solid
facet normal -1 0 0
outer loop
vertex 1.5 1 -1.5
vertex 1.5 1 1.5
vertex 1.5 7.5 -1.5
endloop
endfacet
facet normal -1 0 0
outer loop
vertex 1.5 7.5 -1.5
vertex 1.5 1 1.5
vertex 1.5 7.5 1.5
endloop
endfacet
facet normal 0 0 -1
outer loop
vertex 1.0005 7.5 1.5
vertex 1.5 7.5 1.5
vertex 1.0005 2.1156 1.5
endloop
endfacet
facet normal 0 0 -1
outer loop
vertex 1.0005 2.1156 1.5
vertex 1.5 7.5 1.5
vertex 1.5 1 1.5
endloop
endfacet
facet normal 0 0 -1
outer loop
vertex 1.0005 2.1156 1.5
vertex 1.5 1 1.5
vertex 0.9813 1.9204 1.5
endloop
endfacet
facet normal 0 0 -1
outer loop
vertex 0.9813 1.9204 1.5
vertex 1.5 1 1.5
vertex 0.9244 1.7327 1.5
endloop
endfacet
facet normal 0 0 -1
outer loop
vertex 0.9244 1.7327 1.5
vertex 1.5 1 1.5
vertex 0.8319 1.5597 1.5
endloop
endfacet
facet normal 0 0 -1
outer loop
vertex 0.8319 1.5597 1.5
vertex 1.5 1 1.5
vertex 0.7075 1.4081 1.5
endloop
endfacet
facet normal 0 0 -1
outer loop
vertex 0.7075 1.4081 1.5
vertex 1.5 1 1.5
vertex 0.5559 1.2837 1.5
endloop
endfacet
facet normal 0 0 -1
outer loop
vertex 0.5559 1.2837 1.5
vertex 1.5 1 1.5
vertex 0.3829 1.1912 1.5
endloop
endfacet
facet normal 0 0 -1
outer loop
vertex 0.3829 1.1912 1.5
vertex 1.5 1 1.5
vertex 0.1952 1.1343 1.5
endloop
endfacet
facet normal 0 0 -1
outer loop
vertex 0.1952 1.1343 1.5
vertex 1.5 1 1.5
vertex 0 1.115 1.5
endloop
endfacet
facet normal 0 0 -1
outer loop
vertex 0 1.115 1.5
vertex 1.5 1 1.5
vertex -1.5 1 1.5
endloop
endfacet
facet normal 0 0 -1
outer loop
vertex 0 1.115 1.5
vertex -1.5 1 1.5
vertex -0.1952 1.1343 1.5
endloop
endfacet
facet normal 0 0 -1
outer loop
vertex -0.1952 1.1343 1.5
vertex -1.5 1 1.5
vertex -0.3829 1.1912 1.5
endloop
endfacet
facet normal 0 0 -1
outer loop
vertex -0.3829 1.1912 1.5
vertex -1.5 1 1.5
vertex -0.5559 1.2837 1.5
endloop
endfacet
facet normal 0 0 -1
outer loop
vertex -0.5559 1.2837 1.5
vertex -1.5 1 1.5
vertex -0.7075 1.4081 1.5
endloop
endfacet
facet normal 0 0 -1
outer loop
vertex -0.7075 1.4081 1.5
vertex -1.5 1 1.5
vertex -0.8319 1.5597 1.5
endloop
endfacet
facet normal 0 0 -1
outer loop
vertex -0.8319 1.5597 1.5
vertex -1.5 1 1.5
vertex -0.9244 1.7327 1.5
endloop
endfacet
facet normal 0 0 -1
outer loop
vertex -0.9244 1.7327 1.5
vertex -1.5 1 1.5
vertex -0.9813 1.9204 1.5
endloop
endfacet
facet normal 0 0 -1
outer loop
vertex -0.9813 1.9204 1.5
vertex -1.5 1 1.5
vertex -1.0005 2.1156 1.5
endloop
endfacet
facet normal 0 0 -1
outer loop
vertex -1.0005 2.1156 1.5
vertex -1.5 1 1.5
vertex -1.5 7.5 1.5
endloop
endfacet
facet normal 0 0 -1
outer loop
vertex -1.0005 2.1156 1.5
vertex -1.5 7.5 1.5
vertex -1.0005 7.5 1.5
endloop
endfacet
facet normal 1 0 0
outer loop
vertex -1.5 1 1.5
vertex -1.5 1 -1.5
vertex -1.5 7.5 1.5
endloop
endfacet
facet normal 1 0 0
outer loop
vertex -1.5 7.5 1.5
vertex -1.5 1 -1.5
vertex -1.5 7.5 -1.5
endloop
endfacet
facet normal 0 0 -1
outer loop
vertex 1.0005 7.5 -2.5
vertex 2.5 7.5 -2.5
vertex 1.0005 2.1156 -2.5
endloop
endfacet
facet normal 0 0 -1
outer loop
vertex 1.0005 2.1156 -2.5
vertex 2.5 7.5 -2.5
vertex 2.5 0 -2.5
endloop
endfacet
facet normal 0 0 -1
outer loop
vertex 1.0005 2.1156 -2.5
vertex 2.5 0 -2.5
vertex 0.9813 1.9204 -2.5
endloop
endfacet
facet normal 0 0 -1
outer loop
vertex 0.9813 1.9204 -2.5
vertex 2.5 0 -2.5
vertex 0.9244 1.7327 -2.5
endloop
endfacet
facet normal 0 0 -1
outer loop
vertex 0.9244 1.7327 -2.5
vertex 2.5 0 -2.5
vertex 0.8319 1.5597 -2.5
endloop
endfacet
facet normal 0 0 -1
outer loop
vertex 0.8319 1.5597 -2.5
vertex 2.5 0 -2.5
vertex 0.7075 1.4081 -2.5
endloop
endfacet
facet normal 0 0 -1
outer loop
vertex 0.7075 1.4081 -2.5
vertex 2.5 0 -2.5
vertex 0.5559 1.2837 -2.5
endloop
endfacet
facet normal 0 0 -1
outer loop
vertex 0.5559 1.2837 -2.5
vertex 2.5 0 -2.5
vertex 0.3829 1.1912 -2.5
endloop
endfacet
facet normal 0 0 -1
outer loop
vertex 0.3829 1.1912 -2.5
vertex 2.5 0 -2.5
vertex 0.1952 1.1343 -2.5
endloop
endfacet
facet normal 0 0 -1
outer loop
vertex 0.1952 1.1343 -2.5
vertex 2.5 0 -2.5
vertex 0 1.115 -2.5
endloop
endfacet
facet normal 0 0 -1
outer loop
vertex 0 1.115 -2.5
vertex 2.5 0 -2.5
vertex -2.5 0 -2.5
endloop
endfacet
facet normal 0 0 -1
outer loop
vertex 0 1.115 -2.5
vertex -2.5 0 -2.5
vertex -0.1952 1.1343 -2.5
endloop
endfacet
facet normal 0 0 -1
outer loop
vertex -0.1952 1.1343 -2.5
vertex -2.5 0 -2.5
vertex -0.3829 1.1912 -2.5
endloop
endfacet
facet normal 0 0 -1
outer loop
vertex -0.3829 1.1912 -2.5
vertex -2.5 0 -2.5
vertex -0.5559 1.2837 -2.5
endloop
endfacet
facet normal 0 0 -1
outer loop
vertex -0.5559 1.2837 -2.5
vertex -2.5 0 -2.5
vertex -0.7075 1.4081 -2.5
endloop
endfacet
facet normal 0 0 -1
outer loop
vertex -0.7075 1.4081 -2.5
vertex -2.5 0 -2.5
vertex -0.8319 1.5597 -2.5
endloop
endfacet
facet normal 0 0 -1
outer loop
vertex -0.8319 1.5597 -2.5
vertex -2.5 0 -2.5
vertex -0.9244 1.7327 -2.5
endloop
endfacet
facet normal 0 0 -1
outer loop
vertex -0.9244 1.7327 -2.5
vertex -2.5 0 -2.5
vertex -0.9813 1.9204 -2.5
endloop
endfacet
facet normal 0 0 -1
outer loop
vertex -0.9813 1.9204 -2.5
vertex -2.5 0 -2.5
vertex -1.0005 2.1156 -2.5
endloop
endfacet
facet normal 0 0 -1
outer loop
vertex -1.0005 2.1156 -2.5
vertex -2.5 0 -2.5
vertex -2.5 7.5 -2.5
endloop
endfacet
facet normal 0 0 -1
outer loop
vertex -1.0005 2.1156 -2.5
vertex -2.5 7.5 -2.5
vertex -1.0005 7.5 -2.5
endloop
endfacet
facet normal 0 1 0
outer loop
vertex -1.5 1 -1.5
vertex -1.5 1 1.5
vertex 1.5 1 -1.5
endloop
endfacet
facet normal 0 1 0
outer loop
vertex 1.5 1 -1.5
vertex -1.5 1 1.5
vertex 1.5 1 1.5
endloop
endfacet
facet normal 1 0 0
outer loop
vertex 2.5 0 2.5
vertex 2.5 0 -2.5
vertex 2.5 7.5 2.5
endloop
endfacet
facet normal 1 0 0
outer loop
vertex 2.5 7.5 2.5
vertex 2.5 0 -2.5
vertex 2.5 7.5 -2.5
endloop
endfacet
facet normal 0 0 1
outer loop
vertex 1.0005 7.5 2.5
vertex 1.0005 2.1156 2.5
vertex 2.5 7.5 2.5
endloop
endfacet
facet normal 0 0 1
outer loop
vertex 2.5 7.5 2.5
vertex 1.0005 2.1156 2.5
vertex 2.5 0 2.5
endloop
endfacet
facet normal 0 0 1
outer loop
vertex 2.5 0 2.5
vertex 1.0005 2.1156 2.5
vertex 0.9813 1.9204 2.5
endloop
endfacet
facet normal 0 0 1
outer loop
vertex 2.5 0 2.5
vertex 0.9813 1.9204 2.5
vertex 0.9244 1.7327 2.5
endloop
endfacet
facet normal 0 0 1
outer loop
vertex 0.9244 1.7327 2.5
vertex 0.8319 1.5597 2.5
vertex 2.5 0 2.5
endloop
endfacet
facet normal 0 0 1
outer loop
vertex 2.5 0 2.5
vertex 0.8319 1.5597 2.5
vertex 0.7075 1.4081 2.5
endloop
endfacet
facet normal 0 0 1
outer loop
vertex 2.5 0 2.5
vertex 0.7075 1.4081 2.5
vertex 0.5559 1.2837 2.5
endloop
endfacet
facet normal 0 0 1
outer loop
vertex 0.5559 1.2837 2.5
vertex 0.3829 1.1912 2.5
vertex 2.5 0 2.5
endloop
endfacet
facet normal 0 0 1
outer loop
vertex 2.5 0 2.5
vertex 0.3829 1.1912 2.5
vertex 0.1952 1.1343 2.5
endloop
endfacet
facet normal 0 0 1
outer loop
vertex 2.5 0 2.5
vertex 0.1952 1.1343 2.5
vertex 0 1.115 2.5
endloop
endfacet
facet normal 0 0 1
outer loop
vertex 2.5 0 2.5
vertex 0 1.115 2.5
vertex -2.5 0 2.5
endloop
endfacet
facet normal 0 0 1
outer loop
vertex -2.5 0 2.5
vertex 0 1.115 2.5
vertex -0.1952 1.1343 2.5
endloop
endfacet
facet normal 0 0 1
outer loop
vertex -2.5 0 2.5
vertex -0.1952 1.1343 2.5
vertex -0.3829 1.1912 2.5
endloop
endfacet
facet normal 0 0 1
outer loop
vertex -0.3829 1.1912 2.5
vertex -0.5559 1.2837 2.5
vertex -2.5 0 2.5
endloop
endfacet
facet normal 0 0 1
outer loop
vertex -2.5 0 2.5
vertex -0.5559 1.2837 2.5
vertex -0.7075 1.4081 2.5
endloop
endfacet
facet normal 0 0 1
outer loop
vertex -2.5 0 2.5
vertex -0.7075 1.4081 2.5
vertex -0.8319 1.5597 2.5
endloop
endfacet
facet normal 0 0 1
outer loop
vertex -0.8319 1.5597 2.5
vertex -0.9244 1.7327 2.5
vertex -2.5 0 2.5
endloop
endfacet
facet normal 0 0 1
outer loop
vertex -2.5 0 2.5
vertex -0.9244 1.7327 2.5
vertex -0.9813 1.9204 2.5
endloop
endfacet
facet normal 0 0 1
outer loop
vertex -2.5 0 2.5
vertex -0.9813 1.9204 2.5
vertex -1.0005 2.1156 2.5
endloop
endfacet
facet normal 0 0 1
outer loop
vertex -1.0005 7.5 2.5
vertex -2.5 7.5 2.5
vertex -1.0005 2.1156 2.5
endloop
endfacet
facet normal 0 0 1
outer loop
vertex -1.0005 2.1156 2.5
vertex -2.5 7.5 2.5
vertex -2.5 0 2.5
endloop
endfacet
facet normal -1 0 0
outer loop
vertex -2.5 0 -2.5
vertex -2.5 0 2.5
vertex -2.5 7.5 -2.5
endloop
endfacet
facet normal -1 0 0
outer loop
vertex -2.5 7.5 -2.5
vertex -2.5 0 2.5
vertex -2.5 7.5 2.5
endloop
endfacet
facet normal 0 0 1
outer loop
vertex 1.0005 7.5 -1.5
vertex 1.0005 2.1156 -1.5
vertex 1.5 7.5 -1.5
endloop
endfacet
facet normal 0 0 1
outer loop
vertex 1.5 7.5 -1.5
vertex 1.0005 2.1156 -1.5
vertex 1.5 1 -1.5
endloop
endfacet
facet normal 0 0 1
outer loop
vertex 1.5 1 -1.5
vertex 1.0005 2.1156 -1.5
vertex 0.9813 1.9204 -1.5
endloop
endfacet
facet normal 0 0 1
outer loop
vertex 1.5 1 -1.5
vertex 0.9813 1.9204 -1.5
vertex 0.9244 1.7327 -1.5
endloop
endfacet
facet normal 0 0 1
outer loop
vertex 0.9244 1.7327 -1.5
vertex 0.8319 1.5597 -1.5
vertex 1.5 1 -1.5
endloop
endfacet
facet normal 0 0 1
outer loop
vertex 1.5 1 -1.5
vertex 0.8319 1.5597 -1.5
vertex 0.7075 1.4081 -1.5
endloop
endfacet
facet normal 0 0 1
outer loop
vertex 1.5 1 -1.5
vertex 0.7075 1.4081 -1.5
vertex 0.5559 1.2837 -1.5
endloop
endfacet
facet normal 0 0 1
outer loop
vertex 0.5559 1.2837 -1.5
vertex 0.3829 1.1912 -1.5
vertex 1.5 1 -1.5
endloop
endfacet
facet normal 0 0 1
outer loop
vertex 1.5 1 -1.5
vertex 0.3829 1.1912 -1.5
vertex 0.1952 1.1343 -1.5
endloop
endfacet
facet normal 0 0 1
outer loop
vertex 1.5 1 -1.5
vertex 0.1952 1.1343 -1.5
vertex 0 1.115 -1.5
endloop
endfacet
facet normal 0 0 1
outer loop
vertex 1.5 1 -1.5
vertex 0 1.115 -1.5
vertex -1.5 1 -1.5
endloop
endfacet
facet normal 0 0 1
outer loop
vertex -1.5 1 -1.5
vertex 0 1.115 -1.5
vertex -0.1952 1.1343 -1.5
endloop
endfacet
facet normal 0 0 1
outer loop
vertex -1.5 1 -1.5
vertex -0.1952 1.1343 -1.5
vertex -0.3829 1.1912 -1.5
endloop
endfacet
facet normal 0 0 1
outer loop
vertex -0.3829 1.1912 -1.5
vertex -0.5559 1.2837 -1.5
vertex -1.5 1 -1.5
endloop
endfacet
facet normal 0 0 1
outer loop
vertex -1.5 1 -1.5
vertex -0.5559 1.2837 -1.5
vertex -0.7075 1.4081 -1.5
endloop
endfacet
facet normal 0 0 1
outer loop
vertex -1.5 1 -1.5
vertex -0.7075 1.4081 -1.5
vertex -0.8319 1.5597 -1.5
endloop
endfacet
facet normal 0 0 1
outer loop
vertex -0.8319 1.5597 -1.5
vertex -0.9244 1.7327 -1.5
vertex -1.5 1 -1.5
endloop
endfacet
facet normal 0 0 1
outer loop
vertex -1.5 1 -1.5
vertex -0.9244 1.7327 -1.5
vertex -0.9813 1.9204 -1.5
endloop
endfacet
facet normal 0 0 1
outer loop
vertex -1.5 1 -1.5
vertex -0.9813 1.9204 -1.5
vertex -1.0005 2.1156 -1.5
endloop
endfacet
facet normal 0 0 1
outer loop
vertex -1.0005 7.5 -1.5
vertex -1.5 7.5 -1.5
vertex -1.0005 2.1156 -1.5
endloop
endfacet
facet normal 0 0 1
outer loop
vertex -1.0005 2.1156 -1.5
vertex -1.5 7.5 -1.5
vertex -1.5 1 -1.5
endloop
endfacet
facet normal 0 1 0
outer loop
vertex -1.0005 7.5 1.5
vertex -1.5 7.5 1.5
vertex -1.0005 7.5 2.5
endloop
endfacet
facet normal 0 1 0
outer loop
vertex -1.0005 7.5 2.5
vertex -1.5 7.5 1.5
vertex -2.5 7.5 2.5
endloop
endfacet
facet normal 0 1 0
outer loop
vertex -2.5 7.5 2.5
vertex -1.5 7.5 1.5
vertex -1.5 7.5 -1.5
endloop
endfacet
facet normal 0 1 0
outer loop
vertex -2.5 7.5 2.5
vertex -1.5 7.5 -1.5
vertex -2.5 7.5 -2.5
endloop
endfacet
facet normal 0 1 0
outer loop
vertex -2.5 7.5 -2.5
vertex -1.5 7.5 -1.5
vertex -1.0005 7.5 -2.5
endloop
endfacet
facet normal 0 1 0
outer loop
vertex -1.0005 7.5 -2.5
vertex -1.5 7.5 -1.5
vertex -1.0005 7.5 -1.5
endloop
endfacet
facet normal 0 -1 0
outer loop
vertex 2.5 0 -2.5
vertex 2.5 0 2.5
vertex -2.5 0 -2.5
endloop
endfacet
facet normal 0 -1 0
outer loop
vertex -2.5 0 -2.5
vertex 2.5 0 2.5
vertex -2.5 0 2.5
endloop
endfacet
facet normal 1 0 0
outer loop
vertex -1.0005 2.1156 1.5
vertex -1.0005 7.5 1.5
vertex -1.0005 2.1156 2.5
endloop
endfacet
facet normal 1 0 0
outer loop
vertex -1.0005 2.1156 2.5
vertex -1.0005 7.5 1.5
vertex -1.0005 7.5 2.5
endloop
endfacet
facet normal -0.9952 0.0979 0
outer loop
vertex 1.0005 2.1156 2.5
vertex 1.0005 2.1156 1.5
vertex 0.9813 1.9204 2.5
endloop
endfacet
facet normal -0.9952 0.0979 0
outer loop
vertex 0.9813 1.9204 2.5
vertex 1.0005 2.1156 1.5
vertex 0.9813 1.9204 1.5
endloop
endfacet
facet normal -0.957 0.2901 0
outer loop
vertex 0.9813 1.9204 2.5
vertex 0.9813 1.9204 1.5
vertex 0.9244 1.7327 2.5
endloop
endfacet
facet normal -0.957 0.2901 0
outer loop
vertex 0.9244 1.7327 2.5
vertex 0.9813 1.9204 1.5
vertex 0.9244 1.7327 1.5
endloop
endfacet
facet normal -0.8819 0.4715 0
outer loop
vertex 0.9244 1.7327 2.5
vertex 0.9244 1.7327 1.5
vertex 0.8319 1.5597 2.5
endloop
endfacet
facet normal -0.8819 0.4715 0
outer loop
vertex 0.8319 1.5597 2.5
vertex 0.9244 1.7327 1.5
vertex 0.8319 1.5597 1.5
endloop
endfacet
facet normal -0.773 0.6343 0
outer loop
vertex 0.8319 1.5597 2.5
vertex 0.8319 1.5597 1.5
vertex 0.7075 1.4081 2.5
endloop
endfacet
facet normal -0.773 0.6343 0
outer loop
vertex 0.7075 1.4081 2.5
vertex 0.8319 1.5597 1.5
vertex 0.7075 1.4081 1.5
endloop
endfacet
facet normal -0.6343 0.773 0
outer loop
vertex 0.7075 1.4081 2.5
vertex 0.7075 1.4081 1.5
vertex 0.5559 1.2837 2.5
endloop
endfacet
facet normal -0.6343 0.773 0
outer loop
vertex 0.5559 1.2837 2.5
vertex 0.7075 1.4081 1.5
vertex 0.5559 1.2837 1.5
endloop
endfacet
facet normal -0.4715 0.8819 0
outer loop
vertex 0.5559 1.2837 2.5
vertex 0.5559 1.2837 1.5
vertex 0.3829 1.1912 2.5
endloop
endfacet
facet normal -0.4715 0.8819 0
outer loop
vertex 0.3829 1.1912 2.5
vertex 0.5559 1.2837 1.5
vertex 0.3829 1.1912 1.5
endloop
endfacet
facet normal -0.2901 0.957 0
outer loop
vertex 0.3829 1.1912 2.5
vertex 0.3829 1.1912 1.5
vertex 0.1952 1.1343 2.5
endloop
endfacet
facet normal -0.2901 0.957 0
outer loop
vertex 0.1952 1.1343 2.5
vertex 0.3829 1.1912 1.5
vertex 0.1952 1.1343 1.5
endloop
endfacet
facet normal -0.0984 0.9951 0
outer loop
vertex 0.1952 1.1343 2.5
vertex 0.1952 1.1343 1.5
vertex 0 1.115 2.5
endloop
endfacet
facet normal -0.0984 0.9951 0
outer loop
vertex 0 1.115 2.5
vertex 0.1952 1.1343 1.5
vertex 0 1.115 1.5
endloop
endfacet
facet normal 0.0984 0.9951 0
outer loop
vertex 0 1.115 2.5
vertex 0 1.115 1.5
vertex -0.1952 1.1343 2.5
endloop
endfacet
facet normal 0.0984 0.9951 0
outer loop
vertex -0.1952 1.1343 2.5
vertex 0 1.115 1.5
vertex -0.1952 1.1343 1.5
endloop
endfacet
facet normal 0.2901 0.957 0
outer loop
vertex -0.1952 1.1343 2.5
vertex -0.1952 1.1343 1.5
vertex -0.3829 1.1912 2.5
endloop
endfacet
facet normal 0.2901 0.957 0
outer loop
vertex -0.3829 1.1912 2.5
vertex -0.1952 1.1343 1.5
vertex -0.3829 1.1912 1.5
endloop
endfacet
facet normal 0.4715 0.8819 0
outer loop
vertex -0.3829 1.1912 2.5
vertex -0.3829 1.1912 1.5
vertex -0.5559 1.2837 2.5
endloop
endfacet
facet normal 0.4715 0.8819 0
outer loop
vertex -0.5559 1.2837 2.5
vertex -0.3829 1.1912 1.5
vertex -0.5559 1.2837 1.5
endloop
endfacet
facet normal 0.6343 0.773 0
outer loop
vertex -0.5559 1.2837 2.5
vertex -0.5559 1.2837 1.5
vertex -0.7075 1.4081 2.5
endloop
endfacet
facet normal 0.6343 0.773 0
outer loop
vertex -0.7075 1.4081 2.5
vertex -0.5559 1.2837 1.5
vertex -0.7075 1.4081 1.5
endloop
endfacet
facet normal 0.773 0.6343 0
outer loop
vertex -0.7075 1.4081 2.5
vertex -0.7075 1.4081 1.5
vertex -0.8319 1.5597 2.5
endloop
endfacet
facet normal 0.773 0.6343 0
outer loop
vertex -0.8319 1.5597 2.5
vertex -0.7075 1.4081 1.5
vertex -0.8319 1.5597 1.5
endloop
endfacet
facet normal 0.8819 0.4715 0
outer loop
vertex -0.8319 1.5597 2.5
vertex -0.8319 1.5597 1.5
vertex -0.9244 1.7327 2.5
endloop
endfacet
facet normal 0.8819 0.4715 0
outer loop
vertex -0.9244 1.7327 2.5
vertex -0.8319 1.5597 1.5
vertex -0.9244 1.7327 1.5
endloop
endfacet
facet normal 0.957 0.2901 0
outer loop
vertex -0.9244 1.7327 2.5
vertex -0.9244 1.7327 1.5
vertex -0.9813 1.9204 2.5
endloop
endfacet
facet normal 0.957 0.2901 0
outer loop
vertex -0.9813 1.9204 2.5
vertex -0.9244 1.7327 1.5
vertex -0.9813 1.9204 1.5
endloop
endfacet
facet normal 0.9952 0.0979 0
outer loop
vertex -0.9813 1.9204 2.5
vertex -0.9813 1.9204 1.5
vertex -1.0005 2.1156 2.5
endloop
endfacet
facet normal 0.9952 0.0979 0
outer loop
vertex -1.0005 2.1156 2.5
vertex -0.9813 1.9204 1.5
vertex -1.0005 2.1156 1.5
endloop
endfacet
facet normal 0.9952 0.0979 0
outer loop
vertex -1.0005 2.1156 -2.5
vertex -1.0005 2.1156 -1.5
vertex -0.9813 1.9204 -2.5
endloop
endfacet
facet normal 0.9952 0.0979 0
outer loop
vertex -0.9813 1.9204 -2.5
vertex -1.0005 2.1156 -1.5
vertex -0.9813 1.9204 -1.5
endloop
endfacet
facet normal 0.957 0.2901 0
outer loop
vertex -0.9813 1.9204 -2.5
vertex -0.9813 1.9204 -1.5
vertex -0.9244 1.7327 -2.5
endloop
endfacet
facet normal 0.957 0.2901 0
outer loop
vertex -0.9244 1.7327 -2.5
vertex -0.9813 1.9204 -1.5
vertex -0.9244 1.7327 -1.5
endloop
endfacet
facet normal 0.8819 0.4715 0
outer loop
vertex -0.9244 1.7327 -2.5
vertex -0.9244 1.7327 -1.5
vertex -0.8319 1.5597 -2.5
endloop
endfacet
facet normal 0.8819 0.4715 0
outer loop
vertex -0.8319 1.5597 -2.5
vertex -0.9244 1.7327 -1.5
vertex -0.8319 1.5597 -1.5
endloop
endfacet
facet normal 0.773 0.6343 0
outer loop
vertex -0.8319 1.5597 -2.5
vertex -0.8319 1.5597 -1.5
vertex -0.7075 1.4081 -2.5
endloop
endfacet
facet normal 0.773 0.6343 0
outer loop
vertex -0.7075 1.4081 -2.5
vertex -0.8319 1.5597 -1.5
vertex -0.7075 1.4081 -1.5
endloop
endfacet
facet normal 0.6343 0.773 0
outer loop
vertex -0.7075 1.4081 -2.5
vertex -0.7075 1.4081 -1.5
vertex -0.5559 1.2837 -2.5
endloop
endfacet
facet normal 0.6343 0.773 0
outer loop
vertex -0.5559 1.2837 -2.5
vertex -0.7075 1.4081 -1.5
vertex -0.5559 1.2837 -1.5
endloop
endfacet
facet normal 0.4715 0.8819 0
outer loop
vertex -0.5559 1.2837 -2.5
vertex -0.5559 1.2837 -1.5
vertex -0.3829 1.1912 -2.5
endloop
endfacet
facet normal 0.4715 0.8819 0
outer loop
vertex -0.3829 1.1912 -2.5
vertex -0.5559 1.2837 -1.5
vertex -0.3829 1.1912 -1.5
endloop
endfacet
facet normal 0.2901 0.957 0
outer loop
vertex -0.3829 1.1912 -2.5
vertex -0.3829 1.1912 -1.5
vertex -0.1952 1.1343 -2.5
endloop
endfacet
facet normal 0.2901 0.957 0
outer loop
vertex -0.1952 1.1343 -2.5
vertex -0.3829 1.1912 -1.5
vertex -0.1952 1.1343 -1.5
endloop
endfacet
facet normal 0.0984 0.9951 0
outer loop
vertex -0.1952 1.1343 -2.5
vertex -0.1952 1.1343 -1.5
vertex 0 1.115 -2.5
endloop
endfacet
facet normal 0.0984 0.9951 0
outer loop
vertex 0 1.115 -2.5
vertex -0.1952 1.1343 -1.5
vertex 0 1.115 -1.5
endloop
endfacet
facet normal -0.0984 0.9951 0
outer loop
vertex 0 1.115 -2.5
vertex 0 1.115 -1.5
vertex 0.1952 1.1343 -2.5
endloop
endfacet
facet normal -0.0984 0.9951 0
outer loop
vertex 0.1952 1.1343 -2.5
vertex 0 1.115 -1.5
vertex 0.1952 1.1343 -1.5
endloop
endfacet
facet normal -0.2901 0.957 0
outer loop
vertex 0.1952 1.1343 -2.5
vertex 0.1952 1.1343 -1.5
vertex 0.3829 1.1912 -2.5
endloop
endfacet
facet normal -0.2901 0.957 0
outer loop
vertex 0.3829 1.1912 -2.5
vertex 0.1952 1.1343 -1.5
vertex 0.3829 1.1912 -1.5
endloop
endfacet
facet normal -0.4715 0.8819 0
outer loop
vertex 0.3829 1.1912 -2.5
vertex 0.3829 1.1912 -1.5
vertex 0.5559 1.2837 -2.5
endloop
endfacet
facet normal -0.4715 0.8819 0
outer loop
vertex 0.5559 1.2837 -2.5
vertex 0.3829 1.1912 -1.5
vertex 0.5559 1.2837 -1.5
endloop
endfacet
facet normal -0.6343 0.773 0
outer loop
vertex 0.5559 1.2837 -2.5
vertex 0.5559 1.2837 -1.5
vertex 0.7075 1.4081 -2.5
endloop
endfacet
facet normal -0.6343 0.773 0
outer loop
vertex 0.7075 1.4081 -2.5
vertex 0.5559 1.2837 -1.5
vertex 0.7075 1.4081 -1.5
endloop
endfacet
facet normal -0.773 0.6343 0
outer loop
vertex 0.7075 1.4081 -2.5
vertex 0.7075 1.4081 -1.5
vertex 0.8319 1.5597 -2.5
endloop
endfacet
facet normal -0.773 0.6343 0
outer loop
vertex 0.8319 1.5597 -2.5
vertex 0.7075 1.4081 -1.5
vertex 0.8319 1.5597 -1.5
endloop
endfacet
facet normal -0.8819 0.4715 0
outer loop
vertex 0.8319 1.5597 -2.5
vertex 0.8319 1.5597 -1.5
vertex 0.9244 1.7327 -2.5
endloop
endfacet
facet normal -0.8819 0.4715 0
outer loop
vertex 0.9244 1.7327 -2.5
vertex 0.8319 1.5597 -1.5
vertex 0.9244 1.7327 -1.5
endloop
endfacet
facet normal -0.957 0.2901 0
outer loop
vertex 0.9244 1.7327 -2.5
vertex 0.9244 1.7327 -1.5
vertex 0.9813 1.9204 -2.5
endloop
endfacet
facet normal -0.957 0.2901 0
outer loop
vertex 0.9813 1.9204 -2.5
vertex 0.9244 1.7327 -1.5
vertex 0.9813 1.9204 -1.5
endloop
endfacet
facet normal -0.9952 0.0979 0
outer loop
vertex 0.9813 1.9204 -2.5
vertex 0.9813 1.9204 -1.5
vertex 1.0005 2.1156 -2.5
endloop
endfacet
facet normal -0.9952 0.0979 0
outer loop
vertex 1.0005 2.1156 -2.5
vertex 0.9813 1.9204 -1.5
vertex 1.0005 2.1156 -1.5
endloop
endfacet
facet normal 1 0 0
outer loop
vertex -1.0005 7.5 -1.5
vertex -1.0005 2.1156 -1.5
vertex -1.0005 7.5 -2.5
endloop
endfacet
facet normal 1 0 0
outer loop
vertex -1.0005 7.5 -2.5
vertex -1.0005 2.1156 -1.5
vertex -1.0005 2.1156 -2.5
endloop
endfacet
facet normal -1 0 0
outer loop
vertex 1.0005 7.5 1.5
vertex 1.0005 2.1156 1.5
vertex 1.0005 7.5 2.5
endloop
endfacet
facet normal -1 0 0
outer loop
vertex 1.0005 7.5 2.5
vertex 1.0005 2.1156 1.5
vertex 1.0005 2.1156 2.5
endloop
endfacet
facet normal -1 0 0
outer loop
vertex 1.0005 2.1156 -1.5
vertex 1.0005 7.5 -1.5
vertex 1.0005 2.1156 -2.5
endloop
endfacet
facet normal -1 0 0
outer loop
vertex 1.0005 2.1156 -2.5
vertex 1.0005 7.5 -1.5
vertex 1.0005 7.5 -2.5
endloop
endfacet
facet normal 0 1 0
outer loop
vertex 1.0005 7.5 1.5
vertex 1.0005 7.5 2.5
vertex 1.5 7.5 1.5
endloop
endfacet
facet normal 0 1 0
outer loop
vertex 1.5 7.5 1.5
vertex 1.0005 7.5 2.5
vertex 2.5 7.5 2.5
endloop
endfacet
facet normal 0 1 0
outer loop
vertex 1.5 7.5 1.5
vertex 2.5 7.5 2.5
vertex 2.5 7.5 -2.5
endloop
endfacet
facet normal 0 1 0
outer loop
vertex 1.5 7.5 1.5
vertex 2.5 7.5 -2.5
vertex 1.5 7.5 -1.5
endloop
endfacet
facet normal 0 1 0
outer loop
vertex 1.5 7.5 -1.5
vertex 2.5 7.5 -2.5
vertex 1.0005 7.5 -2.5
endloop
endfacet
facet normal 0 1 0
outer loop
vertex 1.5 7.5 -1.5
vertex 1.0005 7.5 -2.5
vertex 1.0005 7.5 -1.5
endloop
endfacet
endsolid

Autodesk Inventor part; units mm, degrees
ref_plane "YZ Plane" through (0, 0, 0) normal (1, 0, 0) x (0, 1, 0)
ref_plane "XZ Plane" through (0, 0, 0) normal (0, 1, 0) x (-1, 0, 0)
ref_plane "XY Plane" through (0, 0, 0) normal (0, 0, 1) x (1, 0, 0)
sketch "Sketch1" plane through (0, 0, 0) normal (0, 1, 0) x (-1, 0, 0)
  line L0 (-2.5, 2.5) -> (2.5, 2.5)
  line L1 (2.5, 2.5) -> (2.5, -2.5)
  line L2 (2.5, -2.5) -> (-2.5, -2.5)
  line L3 (-2.5, -2.5) -> (-2.5, 2.5)
  line L4 (-2.5, 2.5) -> (2.5, -2.5) construction
  line L5 (2.5, 2.5) -> (-2.5, -2.5) construction
  point P0 (0, 0)
  dimension "d0" = 5
  dimension "d1" = 5
extrude "Extrusion1" add sketch "Sketch1" along normal blind 7.5
shell "Shell1" thickness 1 removed faces 1 at (-0.8333, 7.5, -0.8333)
sketch "Sketch3" plane through (-2.5, 0, 2.5) normal (0, 0, 1) x (1, 0, 0)
  line L0 (2.5, 9.1674) -> (2.5, 2.1156) construction
  line L1 (1.4995, 9.1674) -> (1.4995, 2.1156)
  line L2 (3.5005, 2.1156) -> (3.5005, 9.1674)
  arc A0 (3.5005, 9.1674) -> (1.4995, 9.1674) centre (2.5, 9.1674) ccw
  arc A1 (1.4995, 2.1156) -> (3.5005, 2.1156) centre (2.5, 2.1156) ccw
  point P0 (2.5, 0)
  point P1 (2.5, 5.6415)
extrude "Extrusion3" cut sketch "Sketch3" against normal through all
properties part number "snapfit_v04"
